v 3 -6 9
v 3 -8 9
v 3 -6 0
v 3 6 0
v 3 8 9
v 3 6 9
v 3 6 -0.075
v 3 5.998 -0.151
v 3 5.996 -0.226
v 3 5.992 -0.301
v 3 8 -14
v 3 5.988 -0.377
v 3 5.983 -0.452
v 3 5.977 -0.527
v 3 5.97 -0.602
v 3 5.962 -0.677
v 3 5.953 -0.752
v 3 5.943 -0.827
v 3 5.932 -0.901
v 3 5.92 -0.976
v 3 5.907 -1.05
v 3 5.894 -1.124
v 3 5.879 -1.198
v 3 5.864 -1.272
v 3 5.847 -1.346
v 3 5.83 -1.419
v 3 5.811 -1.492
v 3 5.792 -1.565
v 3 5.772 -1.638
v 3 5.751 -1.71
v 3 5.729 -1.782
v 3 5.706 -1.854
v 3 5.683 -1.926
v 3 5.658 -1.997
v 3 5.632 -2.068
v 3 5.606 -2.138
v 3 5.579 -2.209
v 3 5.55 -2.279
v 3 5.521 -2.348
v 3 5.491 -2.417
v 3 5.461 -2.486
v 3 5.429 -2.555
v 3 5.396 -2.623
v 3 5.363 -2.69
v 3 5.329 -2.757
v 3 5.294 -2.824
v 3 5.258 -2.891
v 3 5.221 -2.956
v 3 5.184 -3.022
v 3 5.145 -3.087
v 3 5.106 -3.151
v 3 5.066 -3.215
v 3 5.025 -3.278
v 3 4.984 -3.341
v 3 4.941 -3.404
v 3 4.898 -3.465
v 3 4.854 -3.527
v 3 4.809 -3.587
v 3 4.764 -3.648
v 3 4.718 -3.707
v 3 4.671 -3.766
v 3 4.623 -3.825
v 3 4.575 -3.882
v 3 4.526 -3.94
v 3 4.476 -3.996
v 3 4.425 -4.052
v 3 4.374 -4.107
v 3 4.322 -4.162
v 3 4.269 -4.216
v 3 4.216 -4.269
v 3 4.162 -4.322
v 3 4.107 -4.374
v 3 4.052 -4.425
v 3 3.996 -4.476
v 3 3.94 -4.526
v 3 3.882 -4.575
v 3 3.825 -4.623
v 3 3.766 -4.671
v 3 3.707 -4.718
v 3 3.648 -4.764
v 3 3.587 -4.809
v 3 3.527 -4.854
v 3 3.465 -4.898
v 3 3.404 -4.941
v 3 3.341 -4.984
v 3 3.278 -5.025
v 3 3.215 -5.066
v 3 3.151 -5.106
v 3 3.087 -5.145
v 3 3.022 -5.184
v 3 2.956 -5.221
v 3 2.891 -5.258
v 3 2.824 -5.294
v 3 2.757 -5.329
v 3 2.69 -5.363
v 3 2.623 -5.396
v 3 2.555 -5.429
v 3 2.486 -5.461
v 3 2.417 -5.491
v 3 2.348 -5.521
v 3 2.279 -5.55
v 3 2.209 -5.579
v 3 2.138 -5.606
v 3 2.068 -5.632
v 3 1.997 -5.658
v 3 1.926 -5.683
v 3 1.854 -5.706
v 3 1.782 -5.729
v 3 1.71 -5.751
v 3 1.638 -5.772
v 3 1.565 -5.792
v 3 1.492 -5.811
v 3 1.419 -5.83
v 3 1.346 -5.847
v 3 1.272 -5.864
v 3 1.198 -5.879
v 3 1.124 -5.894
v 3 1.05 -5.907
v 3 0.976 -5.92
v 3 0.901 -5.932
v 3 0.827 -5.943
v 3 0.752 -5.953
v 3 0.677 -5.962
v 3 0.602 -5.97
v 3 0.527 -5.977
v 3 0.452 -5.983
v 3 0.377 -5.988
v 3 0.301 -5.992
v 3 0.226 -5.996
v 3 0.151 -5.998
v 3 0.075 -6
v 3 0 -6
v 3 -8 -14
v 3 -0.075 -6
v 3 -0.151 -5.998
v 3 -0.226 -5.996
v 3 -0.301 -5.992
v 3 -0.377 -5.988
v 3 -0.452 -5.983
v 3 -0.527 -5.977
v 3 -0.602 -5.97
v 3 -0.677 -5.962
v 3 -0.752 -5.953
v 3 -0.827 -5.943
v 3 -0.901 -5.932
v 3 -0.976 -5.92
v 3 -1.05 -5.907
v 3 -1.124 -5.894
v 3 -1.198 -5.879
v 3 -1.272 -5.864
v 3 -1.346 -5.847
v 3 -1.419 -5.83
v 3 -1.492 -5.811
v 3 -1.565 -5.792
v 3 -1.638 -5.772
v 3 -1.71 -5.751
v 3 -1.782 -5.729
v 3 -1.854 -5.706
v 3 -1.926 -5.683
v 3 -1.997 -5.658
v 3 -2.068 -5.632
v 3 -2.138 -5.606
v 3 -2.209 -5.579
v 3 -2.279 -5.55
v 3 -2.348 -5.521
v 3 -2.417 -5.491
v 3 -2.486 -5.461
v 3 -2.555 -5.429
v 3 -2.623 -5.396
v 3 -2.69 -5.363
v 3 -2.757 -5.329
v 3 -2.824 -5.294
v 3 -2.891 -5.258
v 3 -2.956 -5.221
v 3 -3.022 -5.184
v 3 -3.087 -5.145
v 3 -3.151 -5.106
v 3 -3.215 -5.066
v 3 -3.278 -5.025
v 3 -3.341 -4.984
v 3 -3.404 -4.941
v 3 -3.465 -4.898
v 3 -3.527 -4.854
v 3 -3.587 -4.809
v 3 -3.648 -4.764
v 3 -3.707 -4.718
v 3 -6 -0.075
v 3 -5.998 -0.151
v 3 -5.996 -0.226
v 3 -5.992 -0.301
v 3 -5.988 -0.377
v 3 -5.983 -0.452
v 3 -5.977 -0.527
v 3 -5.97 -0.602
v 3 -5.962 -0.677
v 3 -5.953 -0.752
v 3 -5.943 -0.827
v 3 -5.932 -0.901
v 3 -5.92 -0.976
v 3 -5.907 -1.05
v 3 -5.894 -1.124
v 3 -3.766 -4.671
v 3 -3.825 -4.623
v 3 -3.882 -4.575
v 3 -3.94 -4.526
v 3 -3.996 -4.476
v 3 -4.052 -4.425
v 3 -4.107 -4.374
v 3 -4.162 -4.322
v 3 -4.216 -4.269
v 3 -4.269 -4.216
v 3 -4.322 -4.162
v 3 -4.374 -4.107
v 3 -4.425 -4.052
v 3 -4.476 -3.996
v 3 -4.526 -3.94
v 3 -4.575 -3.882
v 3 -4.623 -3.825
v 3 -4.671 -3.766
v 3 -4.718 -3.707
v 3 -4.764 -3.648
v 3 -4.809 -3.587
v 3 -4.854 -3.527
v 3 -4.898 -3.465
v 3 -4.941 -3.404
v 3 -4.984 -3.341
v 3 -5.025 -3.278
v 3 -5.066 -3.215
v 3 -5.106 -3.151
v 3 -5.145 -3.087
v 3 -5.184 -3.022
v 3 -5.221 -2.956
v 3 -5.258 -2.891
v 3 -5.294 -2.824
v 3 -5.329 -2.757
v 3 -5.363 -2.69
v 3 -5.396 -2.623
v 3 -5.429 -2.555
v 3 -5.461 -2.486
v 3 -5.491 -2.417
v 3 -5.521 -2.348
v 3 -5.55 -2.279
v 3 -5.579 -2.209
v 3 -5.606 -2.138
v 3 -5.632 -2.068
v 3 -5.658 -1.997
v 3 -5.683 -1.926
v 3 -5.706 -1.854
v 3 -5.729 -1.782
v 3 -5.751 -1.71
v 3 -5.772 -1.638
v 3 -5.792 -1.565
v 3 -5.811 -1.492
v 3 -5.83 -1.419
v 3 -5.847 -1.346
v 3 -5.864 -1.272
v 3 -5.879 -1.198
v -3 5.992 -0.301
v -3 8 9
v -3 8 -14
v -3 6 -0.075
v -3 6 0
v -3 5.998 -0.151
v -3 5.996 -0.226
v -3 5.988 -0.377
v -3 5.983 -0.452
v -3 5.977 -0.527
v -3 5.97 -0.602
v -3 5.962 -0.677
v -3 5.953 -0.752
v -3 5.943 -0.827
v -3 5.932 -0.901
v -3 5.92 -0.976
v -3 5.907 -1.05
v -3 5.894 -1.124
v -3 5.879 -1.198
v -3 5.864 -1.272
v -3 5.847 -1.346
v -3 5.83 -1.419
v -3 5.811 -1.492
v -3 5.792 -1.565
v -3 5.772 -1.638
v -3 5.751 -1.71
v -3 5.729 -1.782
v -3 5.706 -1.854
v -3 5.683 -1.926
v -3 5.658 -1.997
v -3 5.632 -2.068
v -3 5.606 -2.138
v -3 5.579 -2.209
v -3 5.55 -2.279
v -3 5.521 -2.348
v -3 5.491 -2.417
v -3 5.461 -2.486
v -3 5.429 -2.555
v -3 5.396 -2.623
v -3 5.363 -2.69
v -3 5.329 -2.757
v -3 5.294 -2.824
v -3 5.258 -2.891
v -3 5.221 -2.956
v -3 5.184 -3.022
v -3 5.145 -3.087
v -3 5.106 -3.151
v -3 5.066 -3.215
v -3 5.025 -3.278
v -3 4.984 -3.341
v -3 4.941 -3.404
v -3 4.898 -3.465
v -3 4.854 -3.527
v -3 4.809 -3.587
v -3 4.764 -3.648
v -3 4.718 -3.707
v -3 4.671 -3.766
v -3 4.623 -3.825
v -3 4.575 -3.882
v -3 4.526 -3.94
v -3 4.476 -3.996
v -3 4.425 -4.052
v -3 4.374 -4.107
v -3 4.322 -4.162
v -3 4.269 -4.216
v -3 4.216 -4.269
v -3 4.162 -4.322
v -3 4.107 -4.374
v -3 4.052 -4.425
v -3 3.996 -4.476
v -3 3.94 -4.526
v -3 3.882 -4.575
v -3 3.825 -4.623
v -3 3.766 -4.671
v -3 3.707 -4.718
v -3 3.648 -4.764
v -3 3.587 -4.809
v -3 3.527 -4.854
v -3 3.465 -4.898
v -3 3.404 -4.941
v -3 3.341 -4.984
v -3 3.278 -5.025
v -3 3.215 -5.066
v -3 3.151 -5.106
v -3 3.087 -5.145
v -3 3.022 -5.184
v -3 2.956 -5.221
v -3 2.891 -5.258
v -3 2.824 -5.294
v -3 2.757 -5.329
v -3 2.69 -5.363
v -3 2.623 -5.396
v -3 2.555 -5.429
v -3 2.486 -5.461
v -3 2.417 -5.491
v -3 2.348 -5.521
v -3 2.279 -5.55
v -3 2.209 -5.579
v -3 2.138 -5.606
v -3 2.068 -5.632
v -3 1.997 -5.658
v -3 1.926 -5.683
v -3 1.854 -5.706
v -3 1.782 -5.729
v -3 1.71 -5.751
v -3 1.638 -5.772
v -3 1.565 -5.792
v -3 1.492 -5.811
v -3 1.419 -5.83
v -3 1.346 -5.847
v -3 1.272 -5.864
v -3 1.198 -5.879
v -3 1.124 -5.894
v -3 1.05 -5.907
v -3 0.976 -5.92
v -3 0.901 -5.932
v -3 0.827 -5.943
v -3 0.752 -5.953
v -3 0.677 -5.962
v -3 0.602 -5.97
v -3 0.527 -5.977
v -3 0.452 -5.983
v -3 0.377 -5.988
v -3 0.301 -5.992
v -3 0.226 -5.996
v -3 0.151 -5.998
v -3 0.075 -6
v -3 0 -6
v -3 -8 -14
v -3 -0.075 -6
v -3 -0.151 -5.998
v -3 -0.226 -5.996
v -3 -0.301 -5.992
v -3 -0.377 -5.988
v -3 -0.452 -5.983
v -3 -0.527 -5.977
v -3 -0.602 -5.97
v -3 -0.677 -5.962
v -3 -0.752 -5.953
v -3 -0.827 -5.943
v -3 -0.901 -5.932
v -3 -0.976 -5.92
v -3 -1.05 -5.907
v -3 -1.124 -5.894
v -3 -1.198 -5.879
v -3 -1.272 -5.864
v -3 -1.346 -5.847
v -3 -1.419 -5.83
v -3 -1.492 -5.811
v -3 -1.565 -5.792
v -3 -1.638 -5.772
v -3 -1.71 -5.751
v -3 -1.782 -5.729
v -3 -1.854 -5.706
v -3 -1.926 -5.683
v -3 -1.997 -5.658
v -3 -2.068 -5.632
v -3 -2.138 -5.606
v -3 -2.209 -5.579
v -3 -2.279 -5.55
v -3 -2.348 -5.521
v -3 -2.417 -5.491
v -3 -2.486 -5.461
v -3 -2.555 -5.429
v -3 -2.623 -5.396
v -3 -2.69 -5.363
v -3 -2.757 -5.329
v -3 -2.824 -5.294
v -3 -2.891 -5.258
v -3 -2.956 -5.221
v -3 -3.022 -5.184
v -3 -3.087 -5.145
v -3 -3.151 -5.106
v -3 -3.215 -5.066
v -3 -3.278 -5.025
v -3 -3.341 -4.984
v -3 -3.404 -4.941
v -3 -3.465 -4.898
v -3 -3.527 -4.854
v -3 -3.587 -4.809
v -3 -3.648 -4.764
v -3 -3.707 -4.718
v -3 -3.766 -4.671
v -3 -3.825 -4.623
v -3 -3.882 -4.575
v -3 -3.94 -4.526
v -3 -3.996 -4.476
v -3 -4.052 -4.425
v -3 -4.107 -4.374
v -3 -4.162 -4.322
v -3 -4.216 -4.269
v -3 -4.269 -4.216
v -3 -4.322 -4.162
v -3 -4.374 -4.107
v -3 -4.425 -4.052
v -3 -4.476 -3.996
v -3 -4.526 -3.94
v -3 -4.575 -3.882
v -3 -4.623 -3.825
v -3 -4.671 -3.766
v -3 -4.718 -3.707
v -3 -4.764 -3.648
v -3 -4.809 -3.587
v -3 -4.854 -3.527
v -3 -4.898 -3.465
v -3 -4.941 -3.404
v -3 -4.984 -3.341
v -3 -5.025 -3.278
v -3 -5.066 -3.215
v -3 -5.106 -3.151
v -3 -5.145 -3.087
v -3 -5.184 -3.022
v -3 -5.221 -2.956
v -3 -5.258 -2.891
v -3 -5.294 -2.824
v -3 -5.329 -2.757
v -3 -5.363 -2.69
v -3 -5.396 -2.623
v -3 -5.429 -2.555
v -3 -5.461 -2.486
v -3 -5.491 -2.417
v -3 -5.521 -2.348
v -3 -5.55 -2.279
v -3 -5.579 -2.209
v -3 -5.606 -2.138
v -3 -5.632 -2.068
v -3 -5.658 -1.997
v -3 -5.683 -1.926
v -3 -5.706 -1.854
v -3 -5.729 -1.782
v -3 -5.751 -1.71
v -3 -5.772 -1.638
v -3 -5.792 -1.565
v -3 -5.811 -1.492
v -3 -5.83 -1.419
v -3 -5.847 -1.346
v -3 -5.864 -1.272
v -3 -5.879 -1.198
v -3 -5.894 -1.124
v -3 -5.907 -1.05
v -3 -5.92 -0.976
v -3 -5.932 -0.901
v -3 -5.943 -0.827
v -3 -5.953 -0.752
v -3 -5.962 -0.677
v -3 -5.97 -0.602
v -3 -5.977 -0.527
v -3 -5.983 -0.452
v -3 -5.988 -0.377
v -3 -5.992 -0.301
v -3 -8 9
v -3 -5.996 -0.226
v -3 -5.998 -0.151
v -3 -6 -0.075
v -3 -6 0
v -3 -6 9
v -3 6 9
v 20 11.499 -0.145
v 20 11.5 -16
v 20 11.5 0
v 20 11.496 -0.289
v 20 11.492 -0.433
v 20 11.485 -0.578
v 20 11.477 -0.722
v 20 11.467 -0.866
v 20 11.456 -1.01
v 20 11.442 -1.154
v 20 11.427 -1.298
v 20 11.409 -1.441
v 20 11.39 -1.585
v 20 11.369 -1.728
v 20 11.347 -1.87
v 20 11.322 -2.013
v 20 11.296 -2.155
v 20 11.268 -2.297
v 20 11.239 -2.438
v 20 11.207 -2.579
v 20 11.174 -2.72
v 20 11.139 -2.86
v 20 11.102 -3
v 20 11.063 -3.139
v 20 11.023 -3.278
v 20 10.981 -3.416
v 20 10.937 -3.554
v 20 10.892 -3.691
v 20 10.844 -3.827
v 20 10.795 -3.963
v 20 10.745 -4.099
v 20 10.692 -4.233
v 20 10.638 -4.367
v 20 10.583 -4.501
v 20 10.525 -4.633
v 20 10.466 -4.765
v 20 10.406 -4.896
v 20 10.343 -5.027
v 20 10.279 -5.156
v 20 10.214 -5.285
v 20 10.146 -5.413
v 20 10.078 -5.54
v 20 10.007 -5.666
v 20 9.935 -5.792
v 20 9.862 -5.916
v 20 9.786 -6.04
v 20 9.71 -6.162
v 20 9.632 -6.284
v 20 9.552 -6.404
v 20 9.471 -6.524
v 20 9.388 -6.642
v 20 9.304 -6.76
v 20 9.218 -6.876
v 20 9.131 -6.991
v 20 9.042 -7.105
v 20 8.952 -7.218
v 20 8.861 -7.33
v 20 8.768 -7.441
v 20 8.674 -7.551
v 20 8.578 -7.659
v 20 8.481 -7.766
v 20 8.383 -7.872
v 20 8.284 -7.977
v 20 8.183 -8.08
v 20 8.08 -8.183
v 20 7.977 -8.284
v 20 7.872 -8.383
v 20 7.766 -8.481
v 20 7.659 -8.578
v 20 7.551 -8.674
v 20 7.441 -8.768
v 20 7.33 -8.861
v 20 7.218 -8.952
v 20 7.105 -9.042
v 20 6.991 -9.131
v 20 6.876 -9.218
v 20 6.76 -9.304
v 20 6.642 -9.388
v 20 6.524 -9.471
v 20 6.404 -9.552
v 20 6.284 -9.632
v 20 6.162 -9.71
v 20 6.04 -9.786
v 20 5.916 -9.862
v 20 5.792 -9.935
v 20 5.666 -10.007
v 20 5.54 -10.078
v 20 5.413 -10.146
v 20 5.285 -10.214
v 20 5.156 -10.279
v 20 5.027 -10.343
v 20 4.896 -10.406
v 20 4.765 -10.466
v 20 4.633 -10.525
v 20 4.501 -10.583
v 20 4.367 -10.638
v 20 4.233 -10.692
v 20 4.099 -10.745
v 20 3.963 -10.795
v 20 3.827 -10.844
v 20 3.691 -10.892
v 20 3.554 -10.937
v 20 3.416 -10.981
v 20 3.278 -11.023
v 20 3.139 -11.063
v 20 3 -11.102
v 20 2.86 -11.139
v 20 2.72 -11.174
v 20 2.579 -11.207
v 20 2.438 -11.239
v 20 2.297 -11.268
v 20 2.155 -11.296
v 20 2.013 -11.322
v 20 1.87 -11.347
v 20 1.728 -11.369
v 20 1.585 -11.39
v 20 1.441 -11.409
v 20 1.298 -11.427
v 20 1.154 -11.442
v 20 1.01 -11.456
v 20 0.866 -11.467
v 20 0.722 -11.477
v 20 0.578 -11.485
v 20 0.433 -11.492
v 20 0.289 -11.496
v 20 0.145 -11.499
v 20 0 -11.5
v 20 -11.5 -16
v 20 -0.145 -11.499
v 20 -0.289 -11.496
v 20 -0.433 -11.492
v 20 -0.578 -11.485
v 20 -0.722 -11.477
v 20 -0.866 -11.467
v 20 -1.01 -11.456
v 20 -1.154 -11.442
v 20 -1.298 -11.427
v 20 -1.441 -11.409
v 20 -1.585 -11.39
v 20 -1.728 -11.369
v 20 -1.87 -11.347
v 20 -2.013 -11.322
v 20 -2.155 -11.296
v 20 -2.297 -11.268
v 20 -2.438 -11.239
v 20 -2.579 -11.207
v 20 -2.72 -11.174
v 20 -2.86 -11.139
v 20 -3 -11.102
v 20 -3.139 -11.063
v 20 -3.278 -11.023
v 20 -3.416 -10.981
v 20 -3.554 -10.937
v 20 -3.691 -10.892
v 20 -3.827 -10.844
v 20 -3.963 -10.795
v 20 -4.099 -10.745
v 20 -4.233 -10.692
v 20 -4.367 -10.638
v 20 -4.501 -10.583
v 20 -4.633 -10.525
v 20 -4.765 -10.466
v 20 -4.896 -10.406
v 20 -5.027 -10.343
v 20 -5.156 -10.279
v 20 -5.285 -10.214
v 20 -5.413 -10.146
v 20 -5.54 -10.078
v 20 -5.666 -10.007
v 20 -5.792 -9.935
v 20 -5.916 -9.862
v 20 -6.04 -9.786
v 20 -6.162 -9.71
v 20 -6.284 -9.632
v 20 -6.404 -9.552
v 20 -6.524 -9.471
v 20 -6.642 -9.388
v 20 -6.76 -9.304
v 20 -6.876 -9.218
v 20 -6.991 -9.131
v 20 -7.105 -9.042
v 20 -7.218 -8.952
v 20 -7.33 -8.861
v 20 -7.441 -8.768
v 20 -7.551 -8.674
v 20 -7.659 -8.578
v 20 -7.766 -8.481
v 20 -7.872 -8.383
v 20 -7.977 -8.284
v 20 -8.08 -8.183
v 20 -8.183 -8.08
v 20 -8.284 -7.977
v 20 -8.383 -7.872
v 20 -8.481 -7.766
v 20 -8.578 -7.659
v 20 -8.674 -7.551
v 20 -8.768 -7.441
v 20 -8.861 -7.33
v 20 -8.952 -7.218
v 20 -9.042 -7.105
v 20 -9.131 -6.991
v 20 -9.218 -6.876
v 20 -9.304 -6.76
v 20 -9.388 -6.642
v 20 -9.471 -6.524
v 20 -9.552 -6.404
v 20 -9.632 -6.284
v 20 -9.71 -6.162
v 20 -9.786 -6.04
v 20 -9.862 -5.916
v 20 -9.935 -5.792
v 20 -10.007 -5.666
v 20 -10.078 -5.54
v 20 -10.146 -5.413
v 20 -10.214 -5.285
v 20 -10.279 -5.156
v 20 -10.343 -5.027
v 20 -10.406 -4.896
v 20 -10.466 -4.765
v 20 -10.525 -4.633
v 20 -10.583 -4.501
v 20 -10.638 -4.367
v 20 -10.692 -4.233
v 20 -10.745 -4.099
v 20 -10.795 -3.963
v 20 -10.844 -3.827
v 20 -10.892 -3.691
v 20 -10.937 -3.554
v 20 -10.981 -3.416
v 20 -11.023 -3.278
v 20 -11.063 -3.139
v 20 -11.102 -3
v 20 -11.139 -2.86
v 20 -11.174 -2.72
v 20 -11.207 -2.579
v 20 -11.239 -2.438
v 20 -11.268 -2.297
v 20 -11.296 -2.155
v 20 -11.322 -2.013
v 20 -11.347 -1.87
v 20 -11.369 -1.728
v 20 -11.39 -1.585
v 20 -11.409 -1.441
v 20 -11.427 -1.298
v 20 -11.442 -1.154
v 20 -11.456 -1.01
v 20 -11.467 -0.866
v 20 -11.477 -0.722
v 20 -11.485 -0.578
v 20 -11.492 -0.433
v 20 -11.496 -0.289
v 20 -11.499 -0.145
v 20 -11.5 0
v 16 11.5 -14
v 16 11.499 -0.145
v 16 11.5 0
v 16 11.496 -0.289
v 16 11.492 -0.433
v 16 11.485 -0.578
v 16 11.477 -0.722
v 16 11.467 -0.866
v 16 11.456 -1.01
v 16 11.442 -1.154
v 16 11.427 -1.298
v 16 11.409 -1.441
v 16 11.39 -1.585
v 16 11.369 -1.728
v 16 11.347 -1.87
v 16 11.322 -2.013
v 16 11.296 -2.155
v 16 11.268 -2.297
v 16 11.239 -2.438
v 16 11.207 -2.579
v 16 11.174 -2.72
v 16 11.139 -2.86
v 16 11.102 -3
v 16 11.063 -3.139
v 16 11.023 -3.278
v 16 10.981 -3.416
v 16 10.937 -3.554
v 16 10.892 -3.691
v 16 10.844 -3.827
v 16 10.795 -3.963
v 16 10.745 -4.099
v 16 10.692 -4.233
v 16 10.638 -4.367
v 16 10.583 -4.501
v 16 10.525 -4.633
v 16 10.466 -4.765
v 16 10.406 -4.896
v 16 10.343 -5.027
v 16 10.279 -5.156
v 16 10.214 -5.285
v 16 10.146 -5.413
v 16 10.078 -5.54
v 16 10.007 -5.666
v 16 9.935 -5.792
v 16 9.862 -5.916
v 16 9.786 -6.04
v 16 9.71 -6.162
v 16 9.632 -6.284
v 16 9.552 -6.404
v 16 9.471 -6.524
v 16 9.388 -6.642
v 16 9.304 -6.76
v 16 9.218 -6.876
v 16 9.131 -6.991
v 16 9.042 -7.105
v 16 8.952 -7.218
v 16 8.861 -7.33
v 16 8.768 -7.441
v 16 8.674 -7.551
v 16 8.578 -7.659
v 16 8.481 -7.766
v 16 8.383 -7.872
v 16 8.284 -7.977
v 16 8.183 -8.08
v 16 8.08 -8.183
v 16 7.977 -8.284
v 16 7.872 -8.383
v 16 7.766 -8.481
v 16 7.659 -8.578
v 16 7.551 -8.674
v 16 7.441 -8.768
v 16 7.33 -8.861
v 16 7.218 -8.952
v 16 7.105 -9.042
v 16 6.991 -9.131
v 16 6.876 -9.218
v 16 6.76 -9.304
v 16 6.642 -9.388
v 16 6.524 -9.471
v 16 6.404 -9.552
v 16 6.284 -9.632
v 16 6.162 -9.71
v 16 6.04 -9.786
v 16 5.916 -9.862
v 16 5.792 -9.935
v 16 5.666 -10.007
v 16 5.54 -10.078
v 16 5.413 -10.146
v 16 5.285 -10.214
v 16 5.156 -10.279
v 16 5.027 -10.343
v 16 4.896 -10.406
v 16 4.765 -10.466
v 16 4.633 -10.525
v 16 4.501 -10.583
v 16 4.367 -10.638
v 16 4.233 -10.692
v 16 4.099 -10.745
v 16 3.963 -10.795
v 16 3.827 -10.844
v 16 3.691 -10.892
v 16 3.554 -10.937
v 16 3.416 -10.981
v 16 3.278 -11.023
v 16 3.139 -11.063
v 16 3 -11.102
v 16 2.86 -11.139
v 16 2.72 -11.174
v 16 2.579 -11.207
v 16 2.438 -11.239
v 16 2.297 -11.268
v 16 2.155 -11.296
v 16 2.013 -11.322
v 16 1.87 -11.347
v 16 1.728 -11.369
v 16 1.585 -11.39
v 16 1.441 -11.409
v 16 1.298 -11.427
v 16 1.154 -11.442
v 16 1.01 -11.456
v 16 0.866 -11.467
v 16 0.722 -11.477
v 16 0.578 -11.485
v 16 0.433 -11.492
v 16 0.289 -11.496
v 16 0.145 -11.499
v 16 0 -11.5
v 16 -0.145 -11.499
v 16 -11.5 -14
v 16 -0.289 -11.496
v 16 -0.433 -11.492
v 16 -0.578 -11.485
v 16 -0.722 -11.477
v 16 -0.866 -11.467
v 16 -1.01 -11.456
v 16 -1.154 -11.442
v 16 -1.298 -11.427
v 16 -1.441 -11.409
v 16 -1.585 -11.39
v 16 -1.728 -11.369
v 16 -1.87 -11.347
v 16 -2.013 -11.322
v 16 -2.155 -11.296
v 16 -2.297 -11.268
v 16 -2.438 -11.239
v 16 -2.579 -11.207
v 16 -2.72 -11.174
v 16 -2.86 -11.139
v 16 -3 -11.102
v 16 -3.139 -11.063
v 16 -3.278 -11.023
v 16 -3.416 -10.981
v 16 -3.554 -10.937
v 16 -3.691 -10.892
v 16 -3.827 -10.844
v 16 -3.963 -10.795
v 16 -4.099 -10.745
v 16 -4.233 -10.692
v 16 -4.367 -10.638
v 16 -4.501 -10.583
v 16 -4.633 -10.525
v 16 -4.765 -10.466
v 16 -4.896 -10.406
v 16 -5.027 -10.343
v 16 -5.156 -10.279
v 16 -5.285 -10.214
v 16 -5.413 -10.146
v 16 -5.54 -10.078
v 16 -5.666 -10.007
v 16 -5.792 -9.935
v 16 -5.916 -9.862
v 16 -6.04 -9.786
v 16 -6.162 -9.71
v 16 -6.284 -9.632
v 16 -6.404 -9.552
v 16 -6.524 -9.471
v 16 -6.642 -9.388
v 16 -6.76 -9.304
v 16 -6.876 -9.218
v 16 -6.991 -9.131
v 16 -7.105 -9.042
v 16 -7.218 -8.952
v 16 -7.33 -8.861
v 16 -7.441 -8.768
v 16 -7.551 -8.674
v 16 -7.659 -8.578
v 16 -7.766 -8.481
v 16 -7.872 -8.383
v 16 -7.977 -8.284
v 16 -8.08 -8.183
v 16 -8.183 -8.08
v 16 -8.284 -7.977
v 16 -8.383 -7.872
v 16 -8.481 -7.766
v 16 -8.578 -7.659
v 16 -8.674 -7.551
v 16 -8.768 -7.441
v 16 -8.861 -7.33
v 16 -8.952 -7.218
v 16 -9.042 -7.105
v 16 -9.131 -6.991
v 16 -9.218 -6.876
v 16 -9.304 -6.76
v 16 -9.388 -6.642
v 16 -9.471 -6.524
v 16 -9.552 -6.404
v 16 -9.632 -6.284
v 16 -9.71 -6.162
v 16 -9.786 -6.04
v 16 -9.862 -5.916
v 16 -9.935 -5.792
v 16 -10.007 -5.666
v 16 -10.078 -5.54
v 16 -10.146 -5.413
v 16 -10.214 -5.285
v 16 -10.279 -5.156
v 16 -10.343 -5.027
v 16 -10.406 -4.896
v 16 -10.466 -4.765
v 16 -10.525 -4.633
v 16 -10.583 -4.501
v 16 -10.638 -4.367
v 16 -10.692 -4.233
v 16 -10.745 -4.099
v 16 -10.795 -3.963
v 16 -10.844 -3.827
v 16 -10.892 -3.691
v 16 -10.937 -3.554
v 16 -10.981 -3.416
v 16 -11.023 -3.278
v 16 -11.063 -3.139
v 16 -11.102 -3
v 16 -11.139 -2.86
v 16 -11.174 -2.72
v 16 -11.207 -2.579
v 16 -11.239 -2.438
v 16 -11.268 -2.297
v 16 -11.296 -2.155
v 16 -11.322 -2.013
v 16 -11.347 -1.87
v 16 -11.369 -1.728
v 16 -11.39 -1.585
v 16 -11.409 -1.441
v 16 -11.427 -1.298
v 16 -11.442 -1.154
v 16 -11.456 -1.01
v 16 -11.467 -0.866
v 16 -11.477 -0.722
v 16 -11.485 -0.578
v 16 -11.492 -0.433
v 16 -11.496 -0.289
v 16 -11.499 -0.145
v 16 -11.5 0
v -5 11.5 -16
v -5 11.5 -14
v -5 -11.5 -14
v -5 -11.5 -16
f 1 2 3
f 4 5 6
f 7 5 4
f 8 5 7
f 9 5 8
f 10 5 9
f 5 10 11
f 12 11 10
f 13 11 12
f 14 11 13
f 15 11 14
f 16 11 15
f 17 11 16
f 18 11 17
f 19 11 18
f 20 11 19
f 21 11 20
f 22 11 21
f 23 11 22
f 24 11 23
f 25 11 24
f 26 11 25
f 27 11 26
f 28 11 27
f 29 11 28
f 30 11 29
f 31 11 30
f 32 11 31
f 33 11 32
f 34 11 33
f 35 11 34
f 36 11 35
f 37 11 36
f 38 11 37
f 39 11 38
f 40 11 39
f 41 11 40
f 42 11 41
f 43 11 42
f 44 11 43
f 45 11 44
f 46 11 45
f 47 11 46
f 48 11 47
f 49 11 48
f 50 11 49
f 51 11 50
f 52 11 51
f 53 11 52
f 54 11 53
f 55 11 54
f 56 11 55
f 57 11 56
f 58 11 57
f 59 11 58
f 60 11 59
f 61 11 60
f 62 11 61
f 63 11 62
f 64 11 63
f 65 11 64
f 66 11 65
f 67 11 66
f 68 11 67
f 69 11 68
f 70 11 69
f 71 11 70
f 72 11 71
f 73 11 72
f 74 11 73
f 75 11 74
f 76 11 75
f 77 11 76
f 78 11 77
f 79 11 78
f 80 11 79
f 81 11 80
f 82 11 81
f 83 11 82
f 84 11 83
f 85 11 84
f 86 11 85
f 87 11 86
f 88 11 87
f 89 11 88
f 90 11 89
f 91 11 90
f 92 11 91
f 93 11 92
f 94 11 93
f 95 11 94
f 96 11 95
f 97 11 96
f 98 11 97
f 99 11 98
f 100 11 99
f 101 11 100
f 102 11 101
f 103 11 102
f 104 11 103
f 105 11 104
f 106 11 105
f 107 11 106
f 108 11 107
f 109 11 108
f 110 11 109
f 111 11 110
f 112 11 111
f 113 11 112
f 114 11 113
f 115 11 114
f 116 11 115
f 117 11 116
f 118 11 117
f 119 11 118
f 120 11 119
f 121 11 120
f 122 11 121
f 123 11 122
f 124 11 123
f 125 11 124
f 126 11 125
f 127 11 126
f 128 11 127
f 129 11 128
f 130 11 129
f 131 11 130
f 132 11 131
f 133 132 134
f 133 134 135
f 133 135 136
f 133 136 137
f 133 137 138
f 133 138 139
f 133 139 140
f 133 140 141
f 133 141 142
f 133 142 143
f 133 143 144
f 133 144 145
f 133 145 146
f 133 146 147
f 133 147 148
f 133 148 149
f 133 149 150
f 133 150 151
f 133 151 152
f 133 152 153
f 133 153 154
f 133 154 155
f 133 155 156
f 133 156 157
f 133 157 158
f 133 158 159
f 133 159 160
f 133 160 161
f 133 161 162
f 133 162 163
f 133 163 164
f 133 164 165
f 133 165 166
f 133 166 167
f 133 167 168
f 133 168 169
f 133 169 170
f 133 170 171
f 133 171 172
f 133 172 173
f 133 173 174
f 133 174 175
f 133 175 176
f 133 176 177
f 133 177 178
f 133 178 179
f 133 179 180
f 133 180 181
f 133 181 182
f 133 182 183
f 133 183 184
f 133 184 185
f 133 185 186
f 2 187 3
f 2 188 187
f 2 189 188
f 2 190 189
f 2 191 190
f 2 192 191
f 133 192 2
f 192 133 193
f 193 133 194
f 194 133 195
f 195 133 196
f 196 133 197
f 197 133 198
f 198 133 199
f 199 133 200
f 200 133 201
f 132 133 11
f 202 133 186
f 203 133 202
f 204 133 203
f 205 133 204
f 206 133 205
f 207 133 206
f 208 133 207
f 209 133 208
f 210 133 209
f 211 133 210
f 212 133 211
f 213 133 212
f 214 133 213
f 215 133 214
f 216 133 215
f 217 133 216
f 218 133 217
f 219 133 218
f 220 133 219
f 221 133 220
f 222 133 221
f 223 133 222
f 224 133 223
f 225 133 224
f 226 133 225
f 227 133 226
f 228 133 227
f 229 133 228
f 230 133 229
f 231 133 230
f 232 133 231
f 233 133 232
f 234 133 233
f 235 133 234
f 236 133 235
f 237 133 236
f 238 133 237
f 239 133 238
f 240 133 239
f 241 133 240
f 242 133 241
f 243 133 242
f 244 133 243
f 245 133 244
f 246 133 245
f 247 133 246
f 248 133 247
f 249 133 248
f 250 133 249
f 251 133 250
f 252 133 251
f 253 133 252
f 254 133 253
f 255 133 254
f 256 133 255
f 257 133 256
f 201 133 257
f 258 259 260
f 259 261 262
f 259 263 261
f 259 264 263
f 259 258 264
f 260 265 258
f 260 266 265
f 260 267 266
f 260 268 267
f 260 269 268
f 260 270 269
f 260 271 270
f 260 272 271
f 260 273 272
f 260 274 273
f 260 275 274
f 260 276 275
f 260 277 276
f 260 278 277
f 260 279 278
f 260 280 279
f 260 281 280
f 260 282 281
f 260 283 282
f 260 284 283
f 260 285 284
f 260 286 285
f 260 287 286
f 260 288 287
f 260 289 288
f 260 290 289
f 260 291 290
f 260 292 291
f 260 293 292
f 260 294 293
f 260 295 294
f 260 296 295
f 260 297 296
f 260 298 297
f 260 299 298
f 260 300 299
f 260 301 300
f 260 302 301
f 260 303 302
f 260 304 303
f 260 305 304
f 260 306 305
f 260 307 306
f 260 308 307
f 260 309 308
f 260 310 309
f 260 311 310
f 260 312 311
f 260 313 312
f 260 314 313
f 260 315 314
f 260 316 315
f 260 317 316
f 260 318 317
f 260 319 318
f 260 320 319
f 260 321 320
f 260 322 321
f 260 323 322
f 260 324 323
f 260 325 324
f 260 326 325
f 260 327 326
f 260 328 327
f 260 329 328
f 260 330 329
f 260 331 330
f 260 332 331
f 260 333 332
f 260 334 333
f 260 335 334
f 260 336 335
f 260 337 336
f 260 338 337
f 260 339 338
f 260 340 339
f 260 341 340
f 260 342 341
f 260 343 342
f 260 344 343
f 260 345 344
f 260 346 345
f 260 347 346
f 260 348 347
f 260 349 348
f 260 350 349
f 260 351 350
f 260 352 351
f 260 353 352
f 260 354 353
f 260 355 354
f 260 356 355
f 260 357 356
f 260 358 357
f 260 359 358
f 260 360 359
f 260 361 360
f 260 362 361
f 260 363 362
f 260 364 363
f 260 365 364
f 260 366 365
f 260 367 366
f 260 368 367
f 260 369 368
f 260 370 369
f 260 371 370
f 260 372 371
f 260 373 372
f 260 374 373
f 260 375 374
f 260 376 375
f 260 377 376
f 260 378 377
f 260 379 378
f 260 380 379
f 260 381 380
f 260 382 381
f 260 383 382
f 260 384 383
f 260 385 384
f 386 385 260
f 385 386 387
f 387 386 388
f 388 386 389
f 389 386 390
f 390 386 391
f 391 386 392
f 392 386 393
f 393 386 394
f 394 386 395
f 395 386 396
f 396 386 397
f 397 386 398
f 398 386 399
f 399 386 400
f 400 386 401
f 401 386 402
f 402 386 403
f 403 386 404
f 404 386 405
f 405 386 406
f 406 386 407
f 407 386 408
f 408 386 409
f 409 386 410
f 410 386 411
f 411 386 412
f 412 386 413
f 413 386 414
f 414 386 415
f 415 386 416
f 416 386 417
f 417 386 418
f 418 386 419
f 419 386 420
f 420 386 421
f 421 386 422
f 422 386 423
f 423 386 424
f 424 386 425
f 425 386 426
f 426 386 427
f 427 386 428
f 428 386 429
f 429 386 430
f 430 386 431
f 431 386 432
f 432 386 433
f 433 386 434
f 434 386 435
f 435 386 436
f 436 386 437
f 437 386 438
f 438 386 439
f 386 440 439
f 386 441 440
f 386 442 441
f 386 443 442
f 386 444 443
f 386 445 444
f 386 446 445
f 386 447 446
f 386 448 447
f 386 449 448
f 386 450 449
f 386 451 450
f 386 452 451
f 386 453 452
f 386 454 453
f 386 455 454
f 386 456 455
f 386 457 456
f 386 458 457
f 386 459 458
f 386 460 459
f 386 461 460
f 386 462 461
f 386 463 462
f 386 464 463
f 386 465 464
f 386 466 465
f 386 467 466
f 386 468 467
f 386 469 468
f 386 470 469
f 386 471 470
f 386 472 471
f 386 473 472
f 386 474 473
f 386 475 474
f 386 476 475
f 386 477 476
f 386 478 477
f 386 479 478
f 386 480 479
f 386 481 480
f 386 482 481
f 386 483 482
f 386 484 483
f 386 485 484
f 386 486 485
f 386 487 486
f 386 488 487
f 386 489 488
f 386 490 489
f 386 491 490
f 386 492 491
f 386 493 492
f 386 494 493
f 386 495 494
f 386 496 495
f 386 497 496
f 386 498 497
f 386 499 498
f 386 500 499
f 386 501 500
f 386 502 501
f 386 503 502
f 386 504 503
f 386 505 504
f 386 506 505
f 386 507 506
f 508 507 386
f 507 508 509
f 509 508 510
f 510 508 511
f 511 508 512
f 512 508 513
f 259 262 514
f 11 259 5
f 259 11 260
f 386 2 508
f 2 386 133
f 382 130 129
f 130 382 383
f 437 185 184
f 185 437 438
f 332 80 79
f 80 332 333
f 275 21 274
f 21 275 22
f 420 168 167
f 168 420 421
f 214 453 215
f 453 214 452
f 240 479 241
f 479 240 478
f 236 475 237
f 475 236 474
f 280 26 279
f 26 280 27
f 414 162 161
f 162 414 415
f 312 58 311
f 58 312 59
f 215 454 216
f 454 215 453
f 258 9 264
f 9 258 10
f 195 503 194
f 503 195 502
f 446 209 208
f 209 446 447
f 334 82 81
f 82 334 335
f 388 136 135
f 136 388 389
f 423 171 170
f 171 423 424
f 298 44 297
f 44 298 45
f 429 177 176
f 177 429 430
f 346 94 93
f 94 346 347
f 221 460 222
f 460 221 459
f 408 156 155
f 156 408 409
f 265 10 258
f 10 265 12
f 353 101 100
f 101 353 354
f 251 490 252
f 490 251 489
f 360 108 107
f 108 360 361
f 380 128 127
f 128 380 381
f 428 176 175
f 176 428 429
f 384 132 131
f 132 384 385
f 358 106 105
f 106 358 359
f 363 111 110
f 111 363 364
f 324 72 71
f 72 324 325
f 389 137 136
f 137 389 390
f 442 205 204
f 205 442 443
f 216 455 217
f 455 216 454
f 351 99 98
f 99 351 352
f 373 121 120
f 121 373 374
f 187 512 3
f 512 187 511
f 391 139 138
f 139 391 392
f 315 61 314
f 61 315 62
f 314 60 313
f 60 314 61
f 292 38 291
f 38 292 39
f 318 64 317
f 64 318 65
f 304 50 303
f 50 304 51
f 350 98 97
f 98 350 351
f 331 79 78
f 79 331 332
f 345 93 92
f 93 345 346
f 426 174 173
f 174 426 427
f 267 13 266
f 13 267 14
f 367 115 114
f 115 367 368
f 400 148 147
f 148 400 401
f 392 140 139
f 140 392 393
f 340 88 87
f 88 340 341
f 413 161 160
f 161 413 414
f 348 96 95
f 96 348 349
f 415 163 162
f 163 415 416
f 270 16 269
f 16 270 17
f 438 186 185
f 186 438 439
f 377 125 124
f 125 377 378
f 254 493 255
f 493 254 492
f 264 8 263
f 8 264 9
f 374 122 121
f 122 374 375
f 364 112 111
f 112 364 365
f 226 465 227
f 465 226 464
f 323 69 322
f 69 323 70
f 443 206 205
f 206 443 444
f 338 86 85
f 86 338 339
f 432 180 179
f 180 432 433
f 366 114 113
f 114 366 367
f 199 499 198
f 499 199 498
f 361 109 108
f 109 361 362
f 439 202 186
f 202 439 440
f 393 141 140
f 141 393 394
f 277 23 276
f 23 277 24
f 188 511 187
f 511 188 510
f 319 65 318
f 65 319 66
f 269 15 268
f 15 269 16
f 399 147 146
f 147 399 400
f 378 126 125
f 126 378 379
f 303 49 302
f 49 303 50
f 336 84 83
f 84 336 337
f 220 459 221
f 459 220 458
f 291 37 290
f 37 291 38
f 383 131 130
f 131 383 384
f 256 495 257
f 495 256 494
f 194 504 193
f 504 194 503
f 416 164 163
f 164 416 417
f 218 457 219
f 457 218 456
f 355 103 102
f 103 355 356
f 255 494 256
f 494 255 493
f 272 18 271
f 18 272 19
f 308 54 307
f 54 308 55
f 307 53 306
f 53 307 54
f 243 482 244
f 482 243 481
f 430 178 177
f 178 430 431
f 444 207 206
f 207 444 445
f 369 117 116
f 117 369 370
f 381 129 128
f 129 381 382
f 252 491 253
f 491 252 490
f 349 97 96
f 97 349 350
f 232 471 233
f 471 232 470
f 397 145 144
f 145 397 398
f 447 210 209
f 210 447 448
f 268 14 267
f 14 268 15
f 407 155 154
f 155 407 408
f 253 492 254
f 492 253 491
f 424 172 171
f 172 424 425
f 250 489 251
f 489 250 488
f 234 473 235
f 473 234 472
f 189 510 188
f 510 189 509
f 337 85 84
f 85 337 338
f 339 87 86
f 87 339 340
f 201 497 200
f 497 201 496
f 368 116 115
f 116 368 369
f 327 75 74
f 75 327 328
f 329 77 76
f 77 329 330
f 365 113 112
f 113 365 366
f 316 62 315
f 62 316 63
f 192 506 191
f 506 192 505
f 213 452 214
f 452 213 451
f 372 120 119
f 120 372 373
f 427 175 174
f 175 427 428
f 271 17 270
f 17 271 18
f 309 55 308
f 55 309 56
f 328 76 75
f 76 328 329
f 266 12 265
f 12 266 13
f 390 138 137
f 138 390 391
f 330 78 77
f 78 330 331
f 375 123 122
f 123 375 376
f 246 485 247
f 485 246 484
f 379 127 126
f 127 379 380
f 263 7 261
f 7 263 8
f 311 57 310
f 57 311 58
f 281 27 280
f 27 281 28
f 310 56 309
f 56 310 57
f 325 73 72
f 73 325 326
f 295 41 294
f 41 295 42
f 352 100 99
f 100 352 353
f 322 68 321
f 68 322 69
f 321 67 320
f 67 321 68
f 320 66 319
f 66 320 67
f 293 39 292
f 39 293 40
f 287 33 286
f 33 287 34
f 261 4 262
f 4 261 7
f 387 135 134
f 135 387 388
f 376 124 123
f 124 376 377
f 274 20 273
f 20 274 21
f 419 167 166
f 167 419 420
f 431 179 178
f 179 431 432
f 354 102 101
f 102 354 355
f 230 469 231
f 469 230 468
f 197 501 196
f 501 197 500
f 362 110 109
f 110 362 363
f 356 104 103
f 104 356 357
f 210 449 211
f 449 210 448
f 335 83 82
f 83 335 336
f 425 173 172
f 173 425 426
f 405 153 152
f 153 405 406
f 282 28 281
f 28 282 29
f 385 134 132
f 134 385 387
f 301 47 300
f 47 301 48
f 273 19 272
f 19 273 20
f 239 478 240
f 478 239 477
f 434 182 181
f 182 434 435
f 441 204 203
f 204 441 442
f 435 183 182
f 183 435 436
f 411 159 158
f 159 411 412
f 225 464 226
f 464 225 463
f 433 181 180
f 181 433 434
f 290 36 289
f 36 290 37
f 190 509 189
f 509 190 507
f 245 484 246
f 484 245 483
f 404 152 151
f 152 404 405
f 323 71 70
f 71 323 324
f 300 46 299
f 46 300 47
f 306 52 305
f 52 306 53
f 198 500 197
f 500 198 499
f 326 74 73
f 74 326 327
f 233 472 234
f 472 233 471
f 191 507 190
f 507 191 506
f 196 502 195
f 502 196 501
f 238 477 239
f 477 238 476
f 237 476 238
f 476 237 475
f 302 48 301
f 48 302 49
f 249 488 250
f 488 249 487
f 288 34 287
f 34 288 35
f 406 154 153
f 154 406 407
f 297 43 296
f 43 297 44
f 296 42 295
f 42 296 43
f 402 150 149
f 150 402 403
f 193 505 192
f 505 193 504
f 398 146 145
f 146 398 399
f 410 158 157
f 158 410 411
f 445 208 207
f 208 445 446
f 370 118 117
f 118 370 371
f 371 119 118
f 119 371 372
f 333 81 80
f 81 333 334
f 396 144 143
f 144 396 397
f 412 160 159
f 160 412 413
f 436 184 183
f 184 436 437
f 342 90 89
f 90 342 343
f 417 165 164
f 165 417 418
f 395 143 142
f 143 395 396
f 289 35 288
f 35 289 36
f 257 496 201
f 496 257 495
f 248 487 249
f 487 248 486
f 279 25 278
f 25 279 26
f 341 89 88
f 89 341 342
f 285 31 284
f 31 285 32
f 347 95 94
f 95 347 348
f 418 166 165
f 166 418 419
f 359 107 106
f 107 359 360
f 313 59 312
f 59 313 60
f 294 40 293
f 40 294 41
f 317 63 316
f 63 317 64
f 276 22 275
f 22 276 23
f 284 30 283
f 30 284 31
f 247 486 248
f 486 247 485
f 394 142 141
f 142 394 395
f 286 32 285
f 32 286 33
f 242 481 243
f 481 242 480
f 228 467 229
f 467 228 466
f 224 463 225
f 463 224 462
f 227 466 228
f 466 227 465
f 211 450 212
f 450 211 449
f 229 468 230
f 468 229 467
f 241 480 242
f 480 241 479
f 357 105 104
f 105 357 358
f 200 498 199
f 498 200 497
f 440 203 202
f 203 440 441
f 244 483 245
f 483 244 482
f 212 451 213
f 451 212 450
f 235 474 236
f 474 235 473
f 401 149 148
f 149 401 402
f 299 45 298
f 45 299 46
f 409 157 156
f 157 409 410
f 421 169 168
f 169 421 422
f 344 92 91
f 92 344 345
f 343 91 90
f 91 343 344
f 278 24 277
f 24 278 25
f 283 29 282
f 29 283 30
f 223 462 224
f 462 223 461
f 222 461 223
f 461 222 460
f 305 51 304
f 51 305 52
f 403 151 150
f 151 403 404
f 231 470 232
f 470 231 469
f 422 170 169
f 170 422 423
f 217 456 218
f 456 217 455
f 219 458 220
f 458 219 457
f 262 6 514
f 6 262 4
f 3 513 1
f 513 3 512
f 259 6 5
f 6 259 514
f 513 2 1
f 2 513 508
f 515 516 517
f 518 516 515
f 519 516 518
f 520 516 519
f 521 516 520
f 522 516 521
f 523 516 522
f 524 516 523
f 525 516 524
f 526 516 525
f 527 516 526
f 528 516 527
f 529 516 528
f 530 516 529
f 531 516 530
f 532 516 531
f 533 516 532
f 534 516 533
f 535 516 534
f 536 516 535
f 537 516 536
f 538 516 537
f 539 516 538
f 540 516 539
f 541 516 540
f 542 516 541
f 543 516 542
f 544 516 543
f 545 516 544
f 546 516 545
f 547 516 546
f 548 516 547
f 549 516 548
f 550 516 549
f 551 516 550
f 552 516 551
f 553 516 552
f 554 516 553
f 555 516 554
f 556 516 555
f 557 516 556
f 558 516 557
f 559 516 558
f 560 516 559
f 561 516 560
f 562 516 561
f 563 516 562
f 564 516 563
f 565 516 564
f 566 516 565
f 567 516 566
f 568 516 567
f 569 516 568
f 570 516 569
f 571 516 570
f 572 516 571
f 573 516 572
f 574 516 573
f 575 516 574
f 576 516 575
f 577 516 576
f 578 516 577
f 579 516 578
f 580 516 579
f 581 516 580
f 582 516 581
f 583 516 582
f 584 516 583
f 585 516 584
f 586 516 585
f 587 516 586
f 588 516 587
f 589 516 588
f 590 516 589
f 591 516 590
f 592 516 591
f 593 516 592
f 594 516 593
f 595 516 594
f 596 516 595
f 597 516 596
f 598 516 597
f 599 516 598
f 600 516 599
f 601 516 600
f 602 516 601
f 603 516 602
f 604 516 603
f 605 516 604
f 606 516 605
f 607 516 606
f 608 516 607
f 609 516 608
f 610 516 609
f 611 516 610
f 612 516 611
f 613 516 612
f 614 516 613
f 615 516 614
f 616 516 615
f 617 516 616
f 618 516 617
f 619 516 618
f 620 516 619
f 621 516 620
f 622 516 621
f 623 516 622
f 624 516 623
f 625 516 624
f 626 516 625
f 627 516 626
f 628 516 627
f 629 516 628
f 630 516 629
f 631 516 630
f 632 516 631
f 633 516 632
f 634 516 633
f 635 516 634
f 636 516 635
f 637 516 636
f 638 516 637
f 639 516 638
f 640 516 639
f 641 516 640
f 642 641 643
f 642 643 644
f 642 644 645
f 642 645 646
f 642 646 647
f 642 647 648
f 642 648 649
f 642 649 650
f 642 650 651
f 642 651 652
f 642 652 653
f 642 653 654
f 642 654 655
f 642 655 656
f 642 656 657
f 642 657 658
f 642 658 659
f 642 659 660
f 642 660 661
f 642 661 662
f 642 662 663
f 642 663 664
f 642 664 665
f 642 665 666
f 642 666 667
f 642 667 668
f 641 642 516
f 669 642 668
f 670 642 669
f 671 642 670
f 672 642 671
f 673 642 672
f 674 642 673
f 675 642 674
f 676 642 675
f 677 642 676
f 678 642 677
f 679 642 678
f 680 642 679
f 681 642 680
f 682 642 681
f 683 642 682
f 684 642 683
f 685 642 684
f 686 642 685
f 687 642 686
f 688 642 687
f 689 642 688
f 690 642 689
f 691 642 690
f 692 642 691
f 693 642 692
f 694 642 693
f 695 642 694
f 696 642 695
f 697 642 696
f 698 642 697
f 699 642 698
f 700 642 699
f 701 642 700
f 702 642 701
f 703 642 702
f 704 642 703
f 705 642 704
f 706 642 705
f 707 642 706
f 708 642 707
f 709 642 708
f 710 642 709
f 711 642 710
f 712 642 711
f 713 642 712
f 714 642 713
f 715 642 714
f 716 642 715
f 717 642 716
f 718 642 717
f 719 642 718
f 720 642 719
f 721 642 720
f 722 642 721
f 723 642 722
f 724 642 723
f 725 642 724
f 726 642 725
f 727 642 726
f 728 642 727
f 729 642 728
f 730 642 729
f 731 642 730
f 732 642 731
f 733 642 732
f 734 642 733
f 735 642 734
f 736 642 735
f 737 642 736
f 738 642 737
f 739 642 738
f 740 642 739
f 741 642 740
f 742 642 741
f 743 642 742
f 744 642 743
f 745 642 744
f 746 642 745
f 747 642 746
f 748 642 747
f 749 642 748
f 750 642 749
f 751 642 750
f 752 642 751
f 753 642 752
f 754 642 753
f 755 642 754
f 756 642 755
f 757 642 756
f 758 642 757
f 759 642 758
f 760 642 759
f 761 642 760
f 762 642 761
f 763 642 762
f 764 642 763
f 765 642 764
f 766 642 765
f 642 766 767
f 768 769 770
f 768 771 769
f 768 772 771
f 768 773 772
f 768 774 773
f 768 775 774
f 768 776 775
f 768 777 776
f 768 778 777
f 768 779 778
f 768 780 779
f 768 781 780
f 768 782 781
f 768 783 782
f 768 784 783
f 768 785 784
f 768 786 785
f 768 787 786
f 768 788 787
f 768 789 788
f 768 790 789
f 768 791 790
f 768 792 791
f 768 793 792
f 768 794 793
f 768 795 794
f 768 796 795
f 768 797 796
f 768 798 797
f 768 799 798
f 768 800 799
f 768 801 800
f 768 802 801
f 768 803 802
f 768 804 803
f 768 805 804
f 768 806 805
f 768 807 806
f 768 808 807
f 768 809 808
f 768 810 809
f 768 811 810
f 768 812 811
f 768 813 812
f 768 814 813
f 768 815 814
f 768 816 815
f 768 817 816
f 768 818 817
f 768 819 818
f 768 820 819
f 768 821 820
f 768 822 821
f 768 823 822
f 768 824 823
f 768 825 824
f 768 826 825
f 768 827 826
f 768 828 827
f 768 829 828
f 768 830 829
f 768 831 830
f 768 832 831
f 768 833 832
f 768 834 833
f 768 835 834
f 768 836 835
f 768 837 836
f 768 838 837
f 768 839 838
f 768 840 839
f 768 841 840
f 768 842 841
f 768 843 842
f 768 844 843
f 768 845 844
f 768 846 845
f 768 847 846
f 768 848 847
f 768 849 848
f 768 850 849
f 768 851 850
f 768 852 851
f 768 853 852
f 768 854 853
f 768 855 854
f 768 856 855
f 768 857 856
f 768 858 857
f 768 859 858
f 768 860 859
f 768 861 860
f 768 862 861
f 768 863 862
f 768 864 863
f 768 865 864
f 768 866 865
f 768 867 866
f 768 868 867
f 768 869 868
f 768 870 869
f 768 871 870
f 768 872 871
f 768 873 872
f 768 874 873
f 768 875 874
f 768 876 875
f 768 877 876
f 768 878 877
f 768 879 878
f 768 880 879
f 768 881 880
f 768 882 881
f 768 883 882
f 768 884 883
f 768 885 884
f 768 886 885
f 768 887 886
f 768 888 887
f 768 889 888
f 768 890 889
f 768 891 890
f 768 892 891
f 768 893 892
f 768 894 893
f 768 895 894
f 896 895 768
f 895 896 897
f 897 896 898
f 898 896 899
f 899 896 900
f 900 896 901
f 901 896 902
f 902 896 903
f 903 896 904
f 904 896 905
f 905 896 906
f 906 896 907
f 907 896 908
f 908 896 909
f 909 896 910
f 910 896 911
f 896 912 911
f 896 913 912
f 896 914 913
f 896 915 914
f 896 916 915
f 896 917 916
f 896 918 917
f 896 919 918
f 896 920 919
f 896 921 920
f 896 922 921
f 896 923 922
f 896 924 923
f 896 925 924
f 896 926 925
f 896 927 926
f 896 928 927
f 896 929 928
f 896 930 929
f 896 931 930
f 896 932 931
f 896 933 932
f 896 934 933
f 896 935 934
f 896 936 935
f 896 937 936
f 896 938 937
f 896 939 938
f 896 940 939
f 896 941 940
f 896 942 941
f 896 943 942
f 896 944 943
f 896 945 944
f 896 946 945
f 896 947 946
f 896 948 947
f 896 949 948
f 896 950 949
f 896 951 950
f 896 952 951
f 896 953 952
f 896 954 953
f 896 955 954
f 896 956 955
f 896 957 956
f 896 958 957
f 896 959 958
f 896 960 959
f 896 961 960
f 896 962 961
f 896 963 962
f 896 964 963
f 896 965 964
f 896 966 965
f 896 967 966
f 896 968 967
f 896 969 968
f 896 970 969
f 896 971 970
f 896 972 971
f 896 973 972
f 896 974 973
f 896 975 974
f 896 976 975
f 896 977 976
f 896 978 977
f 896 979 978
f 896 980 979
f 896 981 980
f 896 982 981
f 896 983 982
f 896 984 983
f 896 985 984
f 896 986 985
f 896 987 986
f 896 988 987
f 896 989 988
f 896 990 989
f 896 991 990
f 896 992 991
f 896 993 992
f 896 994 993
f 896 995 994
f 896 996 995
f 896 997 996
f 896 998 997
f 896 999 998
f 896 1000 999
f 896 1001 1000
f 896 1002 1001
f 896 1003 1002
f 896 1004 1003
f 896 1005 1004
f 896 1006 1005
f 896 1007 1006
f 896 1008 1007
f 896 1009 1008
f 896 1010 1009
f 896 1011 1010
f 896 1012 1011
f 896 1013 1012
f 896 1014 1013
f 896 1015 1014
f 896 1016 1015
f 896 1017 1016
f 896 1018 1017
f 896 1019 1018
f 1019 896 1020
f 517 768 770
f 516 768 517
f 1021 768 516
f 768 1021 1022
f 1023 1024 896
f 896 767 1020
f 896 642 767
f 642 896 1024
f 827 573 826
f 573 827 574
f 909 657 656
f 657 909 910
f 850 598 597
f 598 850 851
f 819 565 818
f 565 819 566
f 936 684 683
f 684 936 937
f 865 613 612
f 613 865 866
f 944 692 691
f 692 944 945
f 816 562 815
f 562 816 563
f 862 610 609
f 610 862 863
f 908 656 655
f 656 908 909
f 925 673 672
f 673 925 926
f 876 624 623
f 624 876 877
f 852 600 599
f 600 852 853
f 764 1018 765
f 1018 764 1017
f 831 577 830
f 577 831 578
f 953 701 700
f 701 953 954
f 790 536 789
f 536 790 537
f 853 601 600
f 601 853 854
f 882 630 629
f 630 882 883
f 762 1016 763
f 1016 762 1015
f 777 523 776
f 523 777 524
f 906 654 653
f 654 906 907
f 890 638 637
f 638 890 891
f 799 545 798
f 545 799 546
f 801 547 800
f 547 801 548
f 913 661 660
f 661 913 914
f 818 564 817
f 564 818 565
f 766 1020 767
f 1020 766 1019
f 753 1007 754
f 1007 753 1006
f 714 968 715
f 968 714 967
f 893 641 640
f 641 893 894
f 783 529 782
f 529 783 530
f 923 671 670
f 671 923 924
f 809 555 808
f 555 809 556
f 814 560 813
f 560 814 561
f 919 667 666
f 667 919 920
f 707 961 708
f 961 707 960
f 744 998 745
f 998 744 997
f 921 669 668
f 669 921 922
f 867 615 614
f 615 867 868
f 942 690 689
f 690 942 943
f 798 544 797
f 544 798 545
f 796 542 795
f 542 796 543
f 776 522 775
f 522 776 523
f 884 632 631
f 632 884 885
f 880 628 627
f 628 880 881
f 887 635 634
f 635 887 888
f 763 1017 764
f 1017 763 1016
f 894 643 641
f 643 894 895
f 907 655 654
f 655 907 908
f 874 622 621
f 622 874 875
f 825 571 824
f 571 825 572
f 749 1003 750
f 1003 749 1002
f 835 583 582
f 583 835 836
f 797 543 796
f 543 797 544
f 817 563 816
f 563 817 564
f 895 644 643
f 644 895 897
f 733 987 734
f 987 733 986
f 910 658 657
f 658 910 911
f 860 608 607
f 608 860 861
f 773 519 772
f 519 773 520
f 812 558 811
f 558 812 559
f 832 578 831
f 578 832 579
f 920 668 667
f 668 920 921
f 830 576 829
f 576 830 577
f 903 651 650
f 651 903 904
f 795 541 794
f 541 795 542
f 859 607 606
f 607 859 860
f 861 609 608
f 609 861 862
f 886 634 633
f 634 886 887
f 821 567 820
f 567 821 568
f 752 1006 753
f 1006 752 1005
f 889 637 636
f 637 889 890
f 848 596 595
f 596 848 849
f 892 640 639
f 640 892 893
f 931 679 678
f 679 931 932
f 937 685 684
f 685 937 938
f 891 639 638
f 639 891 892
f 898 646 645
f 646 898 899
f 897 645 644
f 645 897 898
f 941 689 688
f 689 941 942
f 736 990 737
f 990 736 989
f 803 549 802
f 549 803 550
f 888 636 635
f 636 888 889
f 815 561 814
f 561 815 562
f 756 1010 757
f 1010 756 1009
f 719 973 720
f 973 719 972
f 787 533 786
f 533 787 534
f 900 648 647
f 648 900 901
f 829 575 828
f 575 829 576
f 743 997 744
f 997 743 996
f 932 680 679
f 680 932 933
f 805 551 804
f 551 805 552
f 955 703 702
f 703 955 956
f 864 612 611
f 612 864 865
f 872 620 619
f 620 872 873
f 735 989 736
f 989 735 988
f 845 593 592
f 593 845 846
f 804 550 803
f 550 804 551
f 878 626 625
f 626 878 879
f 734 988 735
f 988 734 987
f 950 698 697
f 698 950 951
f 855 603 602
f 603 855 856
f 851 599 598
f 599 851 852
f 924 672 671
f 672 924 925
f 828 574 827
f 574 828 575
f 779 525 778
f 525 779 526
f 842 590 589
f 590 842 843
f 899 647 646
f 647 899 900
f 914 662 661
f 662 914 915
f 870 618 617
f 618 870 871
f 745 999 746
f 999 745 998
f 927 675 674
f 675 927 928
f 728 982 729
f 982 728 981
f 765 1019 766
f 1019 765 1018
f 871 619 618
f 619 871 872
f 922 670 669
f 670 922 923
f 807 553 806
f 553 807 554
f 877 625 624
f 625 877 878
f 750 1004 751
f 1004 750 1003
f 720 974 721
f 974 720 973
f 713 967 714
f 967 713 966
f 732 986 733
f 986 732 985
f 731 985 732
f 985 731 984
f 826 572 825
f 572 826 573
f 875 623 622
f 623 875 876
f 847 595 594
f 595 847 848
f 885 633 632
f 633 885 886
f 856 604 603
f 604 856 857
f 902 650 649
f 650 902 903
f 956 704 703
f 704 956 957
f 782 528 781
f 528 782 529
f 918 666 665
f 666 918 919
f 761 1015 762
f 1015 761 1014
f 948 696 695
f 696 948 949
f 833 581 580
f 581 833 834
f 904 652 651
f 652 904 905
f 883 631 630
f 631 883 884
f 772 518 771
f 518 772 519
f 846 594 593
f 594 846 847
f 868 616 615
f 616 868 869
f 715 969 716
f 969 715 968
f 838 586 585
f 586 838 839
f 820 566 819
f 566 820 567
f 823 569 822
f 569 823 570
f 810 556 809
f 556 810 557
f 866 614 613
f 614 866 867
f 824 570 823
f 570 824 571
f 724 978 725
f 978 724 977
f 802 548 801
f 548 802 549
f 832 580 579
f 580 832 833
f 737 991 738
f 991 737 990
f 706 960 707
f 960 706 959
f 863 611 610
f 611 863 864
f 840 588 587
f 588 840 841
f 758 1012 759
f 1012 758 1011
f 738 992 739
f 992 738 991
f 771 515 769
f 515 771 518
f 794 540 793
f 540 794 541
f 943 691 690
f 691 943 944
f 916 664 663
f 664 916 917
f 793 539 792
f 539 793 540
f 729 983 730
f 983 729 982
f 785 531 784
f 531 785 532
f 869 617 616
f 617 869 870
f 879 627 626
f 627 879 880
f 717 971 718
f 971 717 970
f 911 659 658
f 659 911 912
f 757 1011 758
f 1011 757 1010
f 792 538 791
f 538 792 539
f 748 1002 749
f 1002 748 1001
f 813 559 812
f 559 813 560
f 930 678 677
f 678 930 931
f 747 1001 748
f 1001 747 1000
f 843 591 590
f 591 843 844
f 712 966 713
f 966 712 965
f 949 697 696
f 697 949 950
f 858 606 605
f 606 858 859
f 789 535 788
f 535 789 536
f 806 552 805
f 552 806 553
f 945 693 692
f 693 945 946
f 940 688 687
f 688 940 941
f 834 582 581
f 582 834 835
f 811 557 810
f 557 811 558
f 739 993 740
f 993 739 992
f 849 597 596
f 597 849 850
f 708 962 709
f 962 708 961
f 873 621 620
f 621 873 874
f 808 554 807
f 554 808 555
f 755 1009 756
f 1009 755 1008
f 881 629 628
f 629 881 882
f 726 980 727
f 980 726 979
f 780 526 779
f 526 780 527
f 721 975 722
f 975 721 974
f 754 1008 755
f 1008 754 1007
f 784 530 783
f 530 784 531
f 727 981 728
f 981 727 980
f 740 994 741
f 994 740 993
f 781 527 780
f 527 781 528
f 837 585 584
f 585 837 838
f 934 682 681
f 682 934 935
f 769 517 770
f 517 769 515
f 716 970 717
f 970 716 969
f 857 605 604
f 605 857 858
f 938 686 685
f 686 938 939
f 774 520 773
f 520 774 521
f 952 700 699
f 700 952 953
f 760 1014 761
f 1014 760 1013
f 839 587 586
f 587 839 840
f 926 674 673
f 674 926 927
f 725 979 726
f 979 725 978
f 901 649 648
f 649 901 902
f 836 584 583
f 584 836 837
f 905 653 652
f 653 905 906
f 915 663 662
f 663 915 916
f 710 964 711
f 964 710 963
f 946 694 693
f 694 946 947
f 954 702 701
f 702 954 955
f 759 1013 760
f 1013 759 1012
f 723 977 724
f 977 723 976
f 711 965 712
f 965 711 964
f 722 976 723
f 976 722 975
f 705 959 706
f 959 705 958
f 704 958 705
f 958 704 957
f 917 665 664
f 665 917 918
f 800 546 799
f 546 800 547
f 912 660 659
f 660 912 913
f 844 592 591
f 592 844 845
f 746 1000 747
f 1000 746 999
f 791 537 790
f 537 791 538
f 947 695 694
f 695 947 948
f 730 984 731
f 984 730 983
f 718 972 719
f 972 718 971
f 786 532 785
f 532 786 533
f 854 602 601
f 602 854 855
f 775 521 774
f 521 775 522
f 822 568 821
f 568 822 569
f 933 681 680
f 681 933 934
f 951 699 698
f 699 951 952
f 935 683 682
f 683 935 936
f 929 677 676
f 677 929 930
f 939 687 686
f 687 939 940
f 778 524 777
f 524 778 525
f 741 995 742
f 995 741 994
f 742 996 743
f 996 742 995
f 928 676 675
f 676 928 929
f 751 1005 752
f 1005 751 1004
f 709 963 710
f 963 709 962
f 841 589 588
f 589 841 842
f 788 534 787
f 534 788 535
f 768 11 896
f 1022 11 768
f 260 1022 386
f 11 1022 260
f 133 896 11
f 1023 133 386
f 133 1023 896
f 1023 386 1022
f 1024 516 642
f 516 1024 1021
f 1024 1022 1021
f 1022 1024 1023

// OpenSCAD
$fn = 500;
hotend_top_diameter = 12;
hotend_top_length = 6;
hotend_bottom_diameter = 23;
hotend_bottom_length = 4;

difference() {
    cube(size = [6, 12 + 4, 30], center=true);

    translate([-10, 0, 0])
    rotate([0, 90, 0])
    cylinder(h = hotend_top_length + 19, r = hotend_top_diameter / 2);
    
    translate([0, 0, 6])
    cube(size = [hotend_top_diameter, hotend_top_diameter, hotend_top_diameter], center  = true);
    
    translate([0, 0, 10])
    cube(size = [hotend_top_diameter, hotend_top_diameter, hotend_top_diameter], center  = true);
    
    translate([0, 0, 15])
    cube(size = [hotend_top_diameter + 10, hotend_top_diameter + 10, hotend_top_diameter], center  = true);
}

translate([18,0,0])
difference() {
    cube(size = [hotend_bottom_length, hotend_bottom_diameter, 30], center = true);
    
    translate([-10, 0, 0])
    rotate([0, 90, 0])
    cylinder(h = hotend_bottom_length + 19, r = hotend_bottom_diameter / 2);
    
    translate([0, 0, 15])
    cube(size = [30, 30, 30], center = true);
}

translate([7.5, 0, -15])
cube(size = [25, 23, 2], center = true);
